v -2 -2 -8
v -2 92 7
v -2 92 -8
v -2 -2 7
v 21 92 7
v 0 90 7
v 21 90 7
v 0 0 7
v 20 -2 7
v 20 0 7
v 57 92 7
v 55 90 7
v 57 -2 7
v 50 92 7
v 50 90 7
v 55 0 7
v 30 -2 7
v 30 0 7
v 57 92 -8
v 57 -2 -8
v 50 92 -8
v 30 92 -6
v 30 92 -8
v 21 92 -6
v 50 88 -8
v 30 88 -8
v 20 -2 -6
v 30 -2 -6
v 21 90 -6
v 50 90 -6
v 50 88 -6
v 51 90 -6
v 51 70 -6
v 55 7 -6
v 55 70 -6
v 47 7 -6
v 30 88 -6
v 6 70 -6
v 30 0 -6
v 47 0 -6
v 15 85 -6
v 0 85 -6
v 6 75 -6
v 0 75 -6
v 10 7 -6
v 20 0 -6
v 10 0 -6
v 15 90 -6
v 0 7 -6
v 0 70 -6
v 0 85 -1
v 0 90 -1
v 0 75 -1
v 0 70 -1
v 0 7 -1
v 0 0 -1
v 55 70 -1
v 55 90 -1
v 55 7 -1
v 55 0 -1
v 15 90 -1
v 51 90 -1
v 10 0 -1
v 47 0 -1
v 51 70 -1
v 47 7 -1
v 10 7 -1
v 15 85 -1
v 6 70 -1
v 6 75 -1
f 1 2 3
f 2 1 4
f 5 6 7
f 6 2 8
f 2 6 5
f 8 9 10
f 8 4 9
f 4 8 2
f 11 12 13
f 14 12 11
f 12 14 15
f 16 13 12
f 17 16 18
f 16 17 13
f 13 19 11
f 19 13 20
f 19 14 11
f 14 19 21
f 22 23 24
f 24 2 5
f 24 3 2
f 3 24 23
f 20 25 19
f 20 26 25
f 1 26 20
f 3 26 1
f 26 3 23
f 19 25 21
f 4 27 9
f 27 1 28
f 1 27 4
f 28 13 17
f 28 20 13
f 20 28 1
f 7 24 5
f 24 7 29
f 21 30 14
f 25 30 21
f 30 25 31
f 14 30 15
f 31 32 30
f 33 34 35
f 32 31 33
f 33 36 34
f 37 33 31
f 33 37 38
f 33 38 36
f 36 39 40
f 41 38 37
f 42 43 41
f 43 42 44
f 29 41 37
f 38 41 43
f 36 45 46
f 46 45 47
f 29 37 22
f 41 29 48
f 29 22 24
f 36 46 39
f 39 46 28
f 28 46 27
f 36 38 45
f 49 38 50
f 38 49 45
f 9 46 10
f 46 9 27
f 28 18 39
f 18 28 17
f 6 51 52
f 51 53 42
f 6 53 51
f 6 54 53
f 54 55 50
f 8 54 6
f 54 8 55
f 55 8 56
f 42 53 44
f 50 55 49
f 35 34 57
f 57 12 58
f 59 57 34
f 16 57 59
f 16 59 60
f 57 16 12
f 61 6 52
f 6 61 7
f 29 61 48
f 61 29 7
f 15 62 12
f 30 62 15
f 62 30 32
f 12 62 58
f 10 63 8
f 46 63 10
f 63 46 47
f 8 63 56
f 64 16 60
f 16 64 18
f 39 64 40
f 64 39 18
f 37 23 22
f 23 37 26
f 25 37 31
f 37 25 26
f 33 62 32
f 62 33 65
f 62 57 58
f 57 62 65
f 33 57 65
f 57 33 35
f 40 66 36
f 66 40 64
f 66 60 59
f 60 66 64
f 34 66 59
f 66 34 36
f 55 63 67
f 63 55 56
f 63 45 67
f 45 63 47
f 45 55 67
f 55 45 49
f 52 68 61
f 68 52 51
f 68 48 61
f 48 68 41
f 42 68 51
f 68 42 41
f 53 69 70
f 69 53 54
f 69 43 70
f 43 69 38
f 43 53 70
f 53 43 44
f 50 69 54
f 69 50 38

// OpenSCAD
rotate([0,0,0]) translate([0,0,-8]) {
    translate([0,0,2]) {

       difference() {
            translate([-2,-2,-2]) cube([59,94,15]); 
            translate([21, 66, 0]) cube([29,26,15]);
            translate([20,-2, 0]) cube([10,10,15]);
            translate([0,0,0]) cube([55,90,15]);
           translate([30,88,-2]) cube([20,4,15]);
        };
        translate([51,70,0]) cube([4,20,5]);
        translate([47,0,0]) cube([8,7,5]);
        translate([0,0,0]) cube([10,7,5]);
        translate([0,85,0]) cube([15,5,5]);
        translate([0,70,0]) cube([6,5,5]);

    };
};
